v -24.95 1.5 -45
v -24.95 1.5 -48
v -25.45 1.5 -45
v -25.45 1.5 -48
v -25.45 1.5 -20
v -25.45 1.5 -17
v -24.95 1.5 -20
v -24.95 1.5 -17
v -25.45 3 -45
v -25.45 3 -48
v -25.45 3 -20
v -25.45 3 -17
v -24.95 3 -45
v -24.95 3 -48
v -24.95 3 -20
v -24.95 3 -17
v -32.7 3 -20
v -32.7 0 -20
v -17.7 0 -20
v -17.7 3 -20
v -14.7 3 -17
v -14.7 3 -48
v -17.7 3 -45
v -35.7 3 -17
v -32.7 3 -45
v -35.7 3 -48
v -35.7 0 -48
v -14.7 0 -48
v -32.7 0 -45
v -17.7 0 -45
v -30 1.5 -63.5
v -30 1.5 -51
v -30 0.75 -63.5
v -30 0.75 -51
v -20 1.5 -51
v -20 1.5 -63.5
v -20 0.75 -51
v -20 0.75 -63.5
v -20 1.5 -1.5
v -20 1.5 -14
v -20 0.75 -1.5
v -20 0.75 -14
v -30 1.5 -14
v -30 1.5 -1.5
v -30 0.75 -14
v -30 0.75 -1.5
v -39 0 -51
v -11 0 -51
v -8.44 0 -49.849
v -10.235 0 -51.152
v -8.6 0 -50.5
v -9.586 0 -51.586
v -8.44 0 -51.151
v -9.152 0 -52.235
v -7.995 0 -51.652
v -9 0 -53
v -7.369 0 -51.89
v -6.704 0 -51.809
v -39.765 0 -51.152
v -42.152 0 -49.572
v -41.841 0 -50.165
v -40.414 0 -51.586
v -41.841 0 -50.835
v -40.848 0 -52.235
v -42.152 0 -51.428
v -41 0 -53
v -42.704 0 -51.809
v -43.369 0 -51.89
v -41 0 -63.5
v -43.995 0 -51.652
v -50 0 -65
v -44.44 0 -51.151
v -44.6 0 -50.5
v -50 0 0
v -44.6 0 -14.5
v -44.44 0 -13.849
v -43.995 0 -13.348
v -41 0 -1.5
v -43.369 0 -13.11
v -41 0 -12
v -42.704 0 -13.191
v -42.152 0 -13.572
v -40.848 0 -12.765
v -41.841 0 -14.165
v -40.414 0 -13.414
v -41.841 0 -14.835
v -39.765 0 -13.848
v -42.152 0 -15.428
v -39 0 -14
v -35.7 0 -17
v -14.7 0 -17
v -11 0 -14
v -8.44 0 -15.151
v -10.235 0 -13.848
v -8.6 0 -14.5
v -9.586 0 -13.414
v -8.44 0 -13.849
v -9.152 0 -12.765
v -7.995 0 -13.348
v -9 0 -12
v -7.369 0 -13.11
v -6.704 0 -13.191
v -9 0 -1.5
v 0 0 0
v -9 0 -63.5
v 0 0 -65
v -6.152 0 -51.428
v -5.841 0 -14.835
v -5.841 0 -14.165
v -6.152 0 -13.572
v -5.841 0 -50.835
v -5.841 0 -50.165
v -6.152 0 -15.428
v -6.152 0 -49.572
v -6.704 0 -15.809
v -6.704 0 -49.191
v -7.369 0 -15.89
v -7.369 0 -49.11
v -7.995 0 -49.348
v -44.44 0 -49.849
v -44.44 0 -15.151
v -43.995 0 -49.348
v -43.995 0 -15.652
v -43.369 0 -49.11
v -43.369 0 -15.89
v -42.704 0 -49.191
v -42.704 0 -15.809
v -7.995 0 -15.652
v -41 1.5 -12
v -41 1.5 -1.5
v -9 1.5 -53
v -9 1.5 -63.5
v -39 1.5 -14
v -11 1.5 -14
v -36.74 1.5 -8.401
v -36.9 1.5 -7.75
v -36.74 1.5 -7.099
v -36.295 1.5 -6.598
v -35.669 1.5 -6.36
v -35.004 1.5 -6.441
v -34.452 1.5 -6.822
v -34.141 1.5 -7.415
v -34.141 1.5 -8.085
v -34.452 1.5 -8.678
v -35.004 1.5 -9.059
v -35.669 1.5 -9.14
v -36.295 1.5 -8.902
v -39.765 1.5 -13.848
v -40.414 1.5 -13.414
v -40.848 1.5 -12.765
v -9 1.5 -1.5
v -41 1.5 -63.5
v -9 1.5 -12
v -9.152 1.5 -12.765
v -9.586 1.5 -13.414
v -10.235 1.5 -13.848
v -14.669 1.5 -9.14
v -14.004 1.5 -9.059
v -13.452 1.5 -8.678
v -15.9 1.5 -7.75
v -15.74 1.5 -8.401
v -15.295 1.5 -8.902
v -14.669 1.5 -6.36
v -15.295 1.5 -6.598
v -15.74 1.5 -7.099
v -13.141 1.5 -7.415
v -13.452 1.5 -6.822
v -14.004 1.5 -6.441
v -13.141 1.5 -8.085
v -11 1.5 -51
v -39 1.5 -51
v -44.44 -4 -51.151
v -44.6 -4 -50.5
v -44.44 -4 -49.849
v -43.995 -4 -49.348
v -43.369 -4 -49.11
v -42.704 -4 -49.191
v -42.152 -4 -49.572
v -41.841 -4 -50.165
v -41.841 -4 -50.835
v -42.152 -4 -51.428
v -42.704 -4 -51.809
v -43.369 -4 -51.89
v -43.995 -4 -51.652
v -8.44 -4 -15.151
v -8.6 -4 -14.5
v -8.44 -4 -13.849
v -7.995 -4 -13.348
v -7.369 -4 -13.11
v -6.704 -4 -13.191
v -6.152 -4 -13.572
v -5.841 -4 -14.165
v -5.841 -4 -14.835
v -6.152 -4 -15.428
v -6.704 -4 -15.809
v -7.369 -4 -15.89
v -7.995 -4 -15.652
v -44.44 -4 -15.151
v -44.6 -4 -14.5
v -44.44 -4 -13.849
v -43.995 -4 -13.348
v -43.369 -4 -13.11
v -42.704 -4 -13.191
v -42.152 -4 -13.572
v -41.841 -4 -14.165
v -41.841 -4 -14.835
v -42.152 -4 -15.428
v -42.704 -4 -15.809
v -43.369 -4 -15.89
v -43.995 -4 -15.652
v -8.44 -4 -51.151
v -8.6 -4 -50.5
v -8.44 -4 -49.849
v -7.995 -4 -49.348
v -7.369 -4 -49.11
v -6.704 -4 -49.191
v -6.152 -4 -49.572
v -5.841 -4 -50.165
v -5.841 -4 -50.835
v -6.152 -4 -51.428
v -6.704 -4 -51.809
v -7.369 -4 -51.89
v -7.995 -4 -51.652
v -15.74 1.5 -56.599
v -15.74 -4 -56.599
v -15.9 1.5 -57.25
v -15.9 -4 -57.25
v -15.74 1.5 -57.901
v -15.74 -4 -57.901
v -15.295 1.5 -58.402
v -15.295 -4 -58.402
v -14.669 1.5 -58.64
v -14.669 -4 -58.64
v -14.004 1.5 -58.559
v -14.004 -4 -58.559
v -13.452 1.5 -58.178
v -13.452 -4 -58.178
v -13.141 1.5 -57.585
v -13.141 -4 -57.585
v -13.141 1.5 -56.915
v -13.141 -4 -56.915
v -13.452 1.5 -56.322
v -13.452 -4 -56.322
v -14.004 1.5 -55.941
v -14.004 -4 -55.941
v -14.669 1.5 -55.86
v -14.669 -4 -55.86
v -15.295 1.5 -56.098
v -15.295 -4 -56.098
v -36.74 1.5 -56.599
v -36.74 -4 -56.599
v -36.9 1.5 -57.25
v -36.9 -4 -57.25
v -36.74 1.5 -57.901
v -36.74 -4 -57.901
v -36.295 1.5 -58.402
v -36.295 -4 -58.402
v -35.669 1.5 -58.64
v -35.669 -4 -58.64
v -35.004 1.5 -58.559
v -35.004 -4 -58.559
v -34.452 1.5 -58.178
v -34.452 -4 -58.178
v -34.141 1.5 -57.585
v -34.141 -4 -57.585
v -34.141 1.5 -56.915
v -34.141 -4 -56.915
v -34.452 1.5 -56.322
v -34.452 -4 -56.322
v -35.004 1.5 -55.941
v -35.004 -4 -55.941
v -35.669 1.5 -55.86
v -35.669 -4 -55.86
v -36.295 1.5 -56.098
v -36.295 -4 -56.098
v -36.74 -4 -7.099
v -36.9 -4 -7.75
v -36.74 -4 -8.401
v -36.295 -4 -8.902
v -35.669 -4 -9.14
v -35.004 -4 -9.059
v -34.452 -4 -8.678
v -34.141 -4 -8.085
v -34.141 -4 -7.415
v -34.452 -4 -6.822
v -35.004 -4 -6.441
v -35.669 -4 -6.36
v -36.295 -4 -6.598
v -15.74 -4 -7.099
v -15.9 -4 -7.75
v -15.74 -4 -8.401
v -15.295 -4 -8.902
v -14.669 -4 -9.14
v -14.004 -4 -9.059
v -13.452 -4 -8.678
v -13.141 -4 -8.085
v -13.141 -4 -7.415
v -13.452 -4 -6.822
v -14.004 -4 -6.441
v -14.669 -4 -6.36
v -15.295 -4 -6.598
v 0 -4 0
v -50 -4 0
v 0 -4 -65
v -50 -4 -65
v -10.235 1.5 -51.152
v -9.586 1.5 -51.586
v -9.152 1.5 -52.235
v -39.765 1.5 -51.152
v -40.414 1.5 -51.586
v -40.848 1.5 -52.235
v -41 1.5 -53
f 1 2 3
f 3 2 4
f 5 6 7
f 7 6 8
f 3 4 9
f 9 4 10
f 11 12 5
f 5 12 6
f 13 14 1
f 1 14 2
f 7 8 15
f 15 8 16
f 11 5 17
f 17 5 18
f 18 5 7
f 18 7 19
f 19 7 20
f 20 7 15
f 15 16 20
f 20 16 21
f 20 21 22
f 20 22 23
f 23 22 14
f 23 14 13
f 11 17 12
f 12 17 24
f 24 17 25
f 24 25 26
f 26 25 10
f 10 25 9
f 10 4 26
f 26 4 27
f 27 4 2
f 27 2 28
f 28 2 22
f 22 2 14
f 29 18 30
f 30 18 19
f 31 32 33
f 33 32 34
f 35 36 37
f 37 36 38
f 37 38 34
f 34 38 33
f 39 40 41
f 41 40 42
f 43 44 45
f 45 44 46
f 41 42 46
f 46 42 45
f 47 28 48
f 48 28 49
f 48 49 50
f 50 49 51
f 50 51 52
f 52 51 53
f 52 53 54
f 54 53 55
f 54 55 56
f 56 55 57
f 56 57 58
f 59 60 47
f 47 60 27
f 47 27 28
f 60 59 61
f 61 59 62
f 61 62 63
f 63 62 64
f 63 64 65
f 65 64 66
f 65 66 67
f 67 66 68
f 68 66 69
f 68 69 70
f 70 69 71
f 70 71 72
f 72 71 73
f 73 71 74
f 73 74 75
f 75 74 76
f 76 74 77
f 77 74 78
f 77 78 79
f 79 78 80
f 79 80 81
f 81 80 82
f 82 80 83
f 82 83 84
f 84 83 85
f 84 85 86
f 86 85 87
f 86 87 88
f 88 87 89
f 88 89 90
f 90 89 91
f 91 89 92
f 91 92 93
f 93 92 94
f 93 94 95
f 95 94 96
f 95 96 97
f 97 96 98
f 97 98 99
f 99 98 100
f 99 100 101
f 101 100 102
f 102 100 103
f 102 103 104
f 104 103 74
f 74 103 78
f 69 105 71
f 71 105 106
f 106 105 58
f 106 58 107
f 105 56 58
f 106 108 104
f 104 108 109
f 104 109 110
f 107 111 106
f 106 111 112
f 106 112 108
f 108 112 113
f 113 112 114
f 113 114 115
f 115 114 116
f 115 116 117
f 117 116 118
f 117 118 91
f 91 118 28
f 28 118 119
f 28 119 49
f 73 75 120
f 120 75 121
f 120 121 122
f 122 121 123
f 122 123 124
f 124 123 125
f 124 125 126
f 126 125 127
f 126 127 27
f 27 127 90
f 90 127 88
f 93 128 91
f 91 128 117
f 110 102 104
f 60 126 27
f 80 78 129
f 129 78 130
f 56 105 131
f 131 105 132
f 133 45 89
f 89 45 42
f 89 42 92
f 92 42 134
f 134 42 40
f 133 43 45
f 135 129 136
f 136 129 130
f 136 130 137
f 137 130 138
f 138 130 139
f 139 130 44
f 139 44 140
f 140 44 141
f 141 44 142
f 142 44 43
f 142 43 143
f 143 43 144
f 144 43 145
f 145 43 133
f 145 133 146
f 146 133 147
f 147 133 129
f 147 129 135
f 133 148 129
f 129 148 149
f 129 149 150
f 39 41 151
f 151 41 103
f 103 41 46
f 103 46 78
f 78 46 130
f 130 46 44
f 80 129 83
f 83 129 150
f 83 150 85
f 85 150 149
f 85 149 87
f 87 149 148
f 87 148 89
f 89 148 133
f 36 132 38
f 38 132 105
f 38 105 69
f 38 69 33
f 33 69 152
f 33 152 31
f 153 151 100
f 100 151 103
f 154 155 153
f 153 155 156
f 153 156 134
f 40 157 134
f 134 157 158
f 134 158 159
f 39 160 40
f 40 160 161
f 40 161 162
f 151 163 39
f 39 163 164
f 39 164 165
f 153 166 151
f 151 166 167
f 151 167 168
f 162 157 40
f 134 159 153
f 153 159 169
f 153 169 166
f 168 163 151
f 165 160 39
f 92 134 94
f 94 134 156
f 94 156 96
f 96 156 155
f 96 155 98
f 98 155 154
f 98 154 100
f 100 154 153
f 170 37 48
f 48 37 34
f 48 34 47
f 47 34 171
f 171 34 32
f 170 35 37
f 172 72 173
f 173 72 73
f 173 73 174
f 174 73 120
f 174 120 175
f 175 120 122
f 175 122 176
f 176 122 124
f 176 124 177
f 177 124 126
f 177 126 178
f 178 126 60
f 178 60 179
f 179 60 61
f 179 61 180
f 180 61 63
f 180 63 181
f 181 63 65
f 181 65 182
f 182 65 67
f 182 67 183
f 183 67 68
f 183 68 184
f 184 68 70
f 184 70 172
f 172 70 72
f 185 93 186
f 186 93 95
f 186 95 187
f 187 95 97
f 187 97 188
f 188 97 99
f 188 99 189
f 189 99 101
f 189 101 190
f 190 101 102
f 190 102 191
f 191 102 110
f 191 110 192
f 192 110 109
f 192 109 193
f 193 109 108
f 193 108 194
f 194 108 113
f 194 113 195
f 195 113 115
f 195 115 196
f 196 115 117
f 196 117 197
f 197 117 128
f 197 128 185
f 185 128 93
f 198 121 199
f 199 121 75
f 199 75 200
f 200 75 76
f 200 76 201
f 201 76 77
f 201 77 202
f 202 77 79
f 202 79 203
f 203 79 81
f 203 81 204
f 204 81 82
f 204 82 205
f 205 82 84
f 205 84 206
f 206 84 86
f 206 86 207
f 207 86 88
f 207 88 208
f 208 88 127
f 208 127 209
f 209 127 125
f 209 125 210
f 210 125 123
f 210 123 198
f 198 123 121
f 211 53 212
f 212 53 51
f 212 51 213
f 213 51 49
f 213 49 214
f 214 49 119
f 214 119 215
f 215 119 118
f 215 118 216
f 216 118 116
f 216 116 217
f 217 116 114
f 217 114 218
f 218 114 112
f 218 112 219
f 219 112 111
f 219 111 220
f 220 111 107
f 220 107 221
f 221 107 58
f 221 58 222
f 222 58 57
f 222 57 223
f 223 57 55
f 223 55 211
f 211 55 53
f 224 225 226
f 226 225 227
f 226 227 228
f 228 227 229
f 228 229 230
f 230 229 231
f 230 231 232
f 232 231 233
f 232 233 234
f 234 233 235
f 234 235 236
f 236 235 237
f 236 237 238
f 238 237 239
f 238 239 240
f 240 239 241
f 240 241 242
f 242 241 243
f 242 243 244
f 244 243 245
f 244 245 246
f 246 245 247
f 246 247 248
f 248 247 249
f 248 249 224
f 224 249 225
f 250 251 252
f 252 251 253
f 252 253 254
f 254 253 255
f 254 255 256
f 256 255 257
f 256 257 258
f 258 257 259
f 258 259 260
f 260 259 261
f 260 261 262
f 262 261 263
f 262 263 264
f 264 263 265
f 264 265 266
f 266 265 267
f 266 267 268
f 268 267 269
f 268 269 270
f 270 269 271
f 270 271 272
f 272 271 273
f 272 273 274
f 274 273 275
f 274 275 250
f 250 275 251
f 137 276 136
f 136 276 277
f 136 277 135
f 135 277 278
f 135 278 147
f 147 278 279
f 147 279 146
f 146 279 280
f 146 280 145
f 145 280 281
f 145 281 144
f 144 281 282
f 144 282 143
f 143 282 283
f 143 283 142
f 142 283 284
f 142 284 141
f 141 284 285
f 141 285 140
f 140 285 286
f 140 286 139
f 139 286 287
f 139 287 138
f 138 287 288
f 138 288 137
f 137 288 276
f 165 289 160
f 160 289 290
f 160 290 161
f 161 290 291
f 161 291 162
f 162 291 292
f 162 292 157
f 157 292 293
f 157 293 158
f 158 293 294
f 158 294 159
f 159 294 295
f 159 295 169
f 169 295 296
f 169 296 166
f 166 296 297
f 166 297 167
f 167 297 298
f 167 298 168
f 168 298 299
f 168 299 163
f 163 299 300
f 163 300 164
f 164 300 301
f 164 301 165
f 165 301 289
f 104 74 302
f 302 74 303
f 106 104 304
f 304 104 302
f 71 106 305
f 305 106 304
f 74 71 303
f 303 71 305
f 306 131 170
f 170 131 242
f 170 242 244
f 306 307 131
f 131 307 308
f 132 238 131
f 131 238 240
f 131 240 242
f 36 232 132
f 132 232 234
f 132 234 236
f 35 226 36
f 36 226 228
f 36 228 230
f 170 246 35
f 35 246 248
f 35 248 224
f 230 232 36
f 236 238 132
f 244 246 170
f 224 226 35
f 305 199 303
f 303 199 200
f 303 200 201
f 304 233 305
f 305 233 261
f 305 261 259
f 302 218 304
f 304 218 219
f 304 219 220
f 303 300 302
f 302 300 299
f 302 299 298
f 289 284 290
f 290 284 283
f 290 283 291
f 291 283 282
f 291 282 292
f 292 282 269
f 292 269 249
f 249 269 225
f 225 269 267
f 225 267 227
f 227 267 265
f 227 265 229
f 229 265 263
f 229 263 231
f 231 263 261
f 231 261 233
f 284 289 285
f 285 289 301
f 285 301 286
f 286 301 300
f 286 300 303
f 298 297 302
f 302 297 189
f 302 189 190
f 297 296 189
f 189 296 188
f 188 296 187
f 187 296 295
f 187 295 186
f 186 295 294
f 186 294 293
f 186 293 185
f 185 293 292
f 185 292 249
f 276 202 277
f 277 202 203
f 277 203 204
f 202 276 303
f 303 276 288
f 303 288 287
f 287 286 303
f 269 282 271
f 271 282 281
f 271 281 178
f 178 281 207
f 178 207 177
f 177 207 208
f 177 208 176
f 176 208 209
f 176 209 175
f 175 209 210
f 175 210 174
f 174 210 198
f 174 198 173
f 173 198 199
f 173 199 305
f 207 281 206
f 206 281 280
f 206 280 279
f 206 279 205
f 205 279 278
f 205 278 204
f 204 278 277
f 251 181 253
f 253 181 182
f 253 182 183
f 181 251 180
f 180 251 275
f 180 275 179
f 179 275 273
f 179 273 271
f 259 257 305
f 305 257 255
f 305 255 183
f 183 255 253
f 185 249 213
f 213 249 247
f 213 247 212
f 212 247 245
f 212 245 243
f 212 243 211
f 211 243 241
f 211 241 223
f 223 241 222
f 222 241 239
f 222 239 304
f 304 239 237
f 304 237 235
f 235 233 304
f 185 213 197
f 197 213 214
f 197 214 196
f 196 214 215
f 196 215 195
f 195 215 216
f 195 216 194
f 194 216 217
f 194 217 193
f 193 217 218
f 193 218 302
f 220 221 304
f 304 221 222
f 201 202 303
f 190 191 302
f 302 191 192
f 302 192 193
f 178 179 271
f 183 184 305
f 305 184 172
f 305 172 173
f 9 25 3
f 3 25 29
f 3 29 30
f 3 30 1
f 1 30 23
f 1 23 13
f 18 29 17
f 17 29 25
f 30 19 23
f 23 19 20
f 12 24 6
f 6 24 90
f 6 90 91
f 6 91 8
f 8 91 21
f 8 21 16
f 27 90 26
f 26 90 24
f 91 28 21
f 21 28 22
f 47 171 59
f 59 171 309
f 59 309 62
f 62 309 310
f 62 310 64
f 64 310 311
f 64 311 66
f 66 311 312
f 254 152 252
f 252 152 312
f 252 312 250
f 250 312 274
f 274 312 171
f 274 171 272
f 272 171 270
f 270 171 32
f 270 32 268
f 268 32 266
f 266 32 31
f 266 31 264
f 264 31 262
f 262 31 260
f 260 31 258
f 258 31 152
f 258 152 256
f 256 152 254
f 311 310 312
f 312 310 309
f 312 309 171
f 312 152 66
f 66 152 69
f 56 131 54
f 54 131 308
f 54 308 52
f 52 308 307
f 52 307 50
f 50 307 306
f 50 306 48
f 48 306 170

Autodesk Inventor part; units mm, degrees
ref_plane "YZ Plane" through (0, 0, 0) normal (1, 0, 0) x (0, 1, 0)
ref_plane "XZ Plane" through (0, 0, 0) normal (0, 1, 0) x (-1, 0, 0)
ref_plane "XY Plane" through (0, 0, 0) normal (0, 0, 1) x (1, 0, 0)
sketch "Boceto1" plane through (0, 0, 0) normal (0, 1, 0) x (-1, 0, 0)
  line L0 (0, 0) -> (50, 0)
  line L1 (50, 0) -> (50, -65)
  line L2 (50, -65) -> (0, -65)
  line L3 (0, -65) -> (0, 0)
  line L4 (17.7, -45) -> (32.7, -45)
  line L5 (32.7, -45) -> (32.7, -20)
  line L6 (32.7, -20) -> (17.7, -20)
  line L7 (17.7, -20) -> (17.7, -45)
  line L8 (17.7, -45) -> (32.7, -20) construction
  line L9 (32.7, -45) -> (17.7, -20) construction
  line L10 (35.7, -17) -> (35.7, -48)
  line L11 (35.7, -48) -> (14.7, -48)
  line L12 (14.7, -48) -> (14.7, -17)
  line L13 (14.7, -17) -> (35.7, -17)
  line L14 (41, -1.5) -> (9, -1.5)
  line L15 (9, -1.5) -> (9, -14)
  line L16 (9, -14) -> (41, -14)
  line L17 (41, -14) -> (41, -1.5)
  line L18 (32.7, -32.5) -> (17.7, -32.5) construction
  line L19 (41, -7.75) -> (35.5, -7.75) construction
  line L20 (35.5, -7.75) -> (14.5, -7.75) construction
  line L21 (14.5, -7.75) -> (9, -7.75) construction
  circle A0 centre (35.5, -7.75) radius 1.4
  circle A1 centre (14.5, -7.75) radius 1.4
  line L22 (41, -63.5) -> (9, -63.5)
  line L23 (9, -63.5) -> (9, -51)
  line L24 (9, -51) -> (41, -51)
  line L25 (41, -51) -> (41, -63.5)
  circle A2 centre (35.5, -57.25) radius 1.4
  circle A3 centre (14.5, -57.25) radius 1.4
  line L26 (50, -32.5) -> (43.2, -32.5) construction
  line L27 (0, -32.5) -> (6.8, -32.5)
  line L28 (45.9347, 0) -> (45.9347, -15.5) construction
  line L29 (43.2, -32.5) -> (43.2, -14.5) construction
  line L30 (43.2, -14.5) -> (50, -14.5) construction
  circle A4 centre (43.2, -14.5) radius 1.4
  line L31 (25.2, -20) -> (25.2, -45) construction
  circle A5 centre (7.2, -14.5) radius 1.4
  circle A6 centre (35.5, -57.25) radius 1.4
  circle A7 centre (43.2, -50.5) radius 1.4
  circle A8 centre (7.2, -50.5) radius 1.4
  point P0 (25.2, -32.5)
  point P1 (25, -14)
  point P2 (25.2, -17)
  dimension "d0" = 65
  dimension "d1" = 50
  dimension "d2" = 25
  dimension "d3" = 15
  dimension "d4" = 3
  dimension "d5" = 12.5
  dimension "d6" = 32
  dimension "d7" = 3
  dimension "d8" = 5.5
  dimension "d9" = 5.5
  dimension "d10" = 2.8
  dimension "d11" = 2.8
  dimension "d12" = 6.8
  dimension "d13" = 6.8
  dimension "d15" = 2.8
  dimension "d30" = 1.5
  dimension "d31" = 36
  dimension "d32" = 36
extrude "Extrusión1" add sketch "Boceto1" along normal blind 3 contours L10 L11 L12 L13
extrude "Extrusión2" add sketch "Boceto1" against normal blind 4 contours L0 L1 L2 L3 | L17 L16 L15 L14 | L22 L23 L24 L25
extrude "Extrusión3" add sketch "Boceto1" along normal blind 1.5 contours L17 L16 L15 L14 | L22 L23 L24 L25
sketch "Boceto2" plane through (0, 1.5, 0) normal (0, 1, 0) x (1, 0, 0)
  line L0 (-41, 1.5) -> (-9, 1.5) projected
  line L1 (-25, 1.5) -> (-25, 14)
  line L2 (-9, 14) -> (-41, 14) projected
  line L3 (-20, 1.5) -> (-30, 1.5)
  line L4 (-30, 1.5) -> (-30, 14)
  line L5 (-30, 14) -> (-20, 14)
  line L6 (-20, 14) -> (-20, 1.5)
  line L7 (-20, 1.5) -> (-30, 14) construction
  line L8 (-30, 1.5) -> (-20, 14) construction
  line L9 (-32.7, 32.5) -> (-17.7, 32.5) construction
  line L10 (-41, 63.5) -> (-9, 63.5)
  line L11 (-9, 51) -> (-41, 51)
  line L12 (-30, 63.5) -> (-30, 51)
  line L13 (-20, 51) -> (-20, 63.5)
  point P0 (0, 0)
  point P1 (-25, 7.75)
  dimension "d22" = 10
extrude "Extrusión4" cut sketch "Boceto2" against normal blind 0.75
extrude "Extrusión5" add sketch "Boceto1" against normal blind 4 contours L7 L6 L5 L4 | L10 L11 L12 L13
sketch "Boceto3" plane through (0, 3, 0) normal (0, 1, 0) x (1, 0, 0)
  line L0 (-25.2, 20) -> (-25.2, 45) construction
  line L1 (-35.7, 17) -> (-14.7, 17) projected
  line L2 (-25.2, 17) -> (-25.2, 48)
  line L3 (-14.7, 48) -> (-35.7, 48) projected
  line L4 (-24.95, 17) -> (-25.45, 17)
  line L5 (-25.45, 17) -> (-25.45, 48)
  line L6 (-25.45, 48) -> (-24.95, 48)
  line L7 (-24.95, 48) -> (-24.95, 17)
  line L8 (-24.95, 17) -> (-25.45, 48) construction
  line L9 (-25.45, 17) -> (-24.95, 48) construction
  point P0 (0, 0)
  point P1 (-25.2, 32.5)
  point P2 (-24.95, 48)
  point P3 (-25.45, 17)
  dimension "d27" = 0.5
extrude "Extrusión6" cut sketch "Boceto3" against normal blind 1.5
fillet "Empalme1" radius 2 4 edges at (-41, 0.75, -51) (-9, 0.75, -51) (-9, 0.75, -14) (-41, 0.75, -14)
equation "\"d9\" = d8"
equation "\"d13\" = d12"
properties part number "Molde 1FBR 1.5mm"
